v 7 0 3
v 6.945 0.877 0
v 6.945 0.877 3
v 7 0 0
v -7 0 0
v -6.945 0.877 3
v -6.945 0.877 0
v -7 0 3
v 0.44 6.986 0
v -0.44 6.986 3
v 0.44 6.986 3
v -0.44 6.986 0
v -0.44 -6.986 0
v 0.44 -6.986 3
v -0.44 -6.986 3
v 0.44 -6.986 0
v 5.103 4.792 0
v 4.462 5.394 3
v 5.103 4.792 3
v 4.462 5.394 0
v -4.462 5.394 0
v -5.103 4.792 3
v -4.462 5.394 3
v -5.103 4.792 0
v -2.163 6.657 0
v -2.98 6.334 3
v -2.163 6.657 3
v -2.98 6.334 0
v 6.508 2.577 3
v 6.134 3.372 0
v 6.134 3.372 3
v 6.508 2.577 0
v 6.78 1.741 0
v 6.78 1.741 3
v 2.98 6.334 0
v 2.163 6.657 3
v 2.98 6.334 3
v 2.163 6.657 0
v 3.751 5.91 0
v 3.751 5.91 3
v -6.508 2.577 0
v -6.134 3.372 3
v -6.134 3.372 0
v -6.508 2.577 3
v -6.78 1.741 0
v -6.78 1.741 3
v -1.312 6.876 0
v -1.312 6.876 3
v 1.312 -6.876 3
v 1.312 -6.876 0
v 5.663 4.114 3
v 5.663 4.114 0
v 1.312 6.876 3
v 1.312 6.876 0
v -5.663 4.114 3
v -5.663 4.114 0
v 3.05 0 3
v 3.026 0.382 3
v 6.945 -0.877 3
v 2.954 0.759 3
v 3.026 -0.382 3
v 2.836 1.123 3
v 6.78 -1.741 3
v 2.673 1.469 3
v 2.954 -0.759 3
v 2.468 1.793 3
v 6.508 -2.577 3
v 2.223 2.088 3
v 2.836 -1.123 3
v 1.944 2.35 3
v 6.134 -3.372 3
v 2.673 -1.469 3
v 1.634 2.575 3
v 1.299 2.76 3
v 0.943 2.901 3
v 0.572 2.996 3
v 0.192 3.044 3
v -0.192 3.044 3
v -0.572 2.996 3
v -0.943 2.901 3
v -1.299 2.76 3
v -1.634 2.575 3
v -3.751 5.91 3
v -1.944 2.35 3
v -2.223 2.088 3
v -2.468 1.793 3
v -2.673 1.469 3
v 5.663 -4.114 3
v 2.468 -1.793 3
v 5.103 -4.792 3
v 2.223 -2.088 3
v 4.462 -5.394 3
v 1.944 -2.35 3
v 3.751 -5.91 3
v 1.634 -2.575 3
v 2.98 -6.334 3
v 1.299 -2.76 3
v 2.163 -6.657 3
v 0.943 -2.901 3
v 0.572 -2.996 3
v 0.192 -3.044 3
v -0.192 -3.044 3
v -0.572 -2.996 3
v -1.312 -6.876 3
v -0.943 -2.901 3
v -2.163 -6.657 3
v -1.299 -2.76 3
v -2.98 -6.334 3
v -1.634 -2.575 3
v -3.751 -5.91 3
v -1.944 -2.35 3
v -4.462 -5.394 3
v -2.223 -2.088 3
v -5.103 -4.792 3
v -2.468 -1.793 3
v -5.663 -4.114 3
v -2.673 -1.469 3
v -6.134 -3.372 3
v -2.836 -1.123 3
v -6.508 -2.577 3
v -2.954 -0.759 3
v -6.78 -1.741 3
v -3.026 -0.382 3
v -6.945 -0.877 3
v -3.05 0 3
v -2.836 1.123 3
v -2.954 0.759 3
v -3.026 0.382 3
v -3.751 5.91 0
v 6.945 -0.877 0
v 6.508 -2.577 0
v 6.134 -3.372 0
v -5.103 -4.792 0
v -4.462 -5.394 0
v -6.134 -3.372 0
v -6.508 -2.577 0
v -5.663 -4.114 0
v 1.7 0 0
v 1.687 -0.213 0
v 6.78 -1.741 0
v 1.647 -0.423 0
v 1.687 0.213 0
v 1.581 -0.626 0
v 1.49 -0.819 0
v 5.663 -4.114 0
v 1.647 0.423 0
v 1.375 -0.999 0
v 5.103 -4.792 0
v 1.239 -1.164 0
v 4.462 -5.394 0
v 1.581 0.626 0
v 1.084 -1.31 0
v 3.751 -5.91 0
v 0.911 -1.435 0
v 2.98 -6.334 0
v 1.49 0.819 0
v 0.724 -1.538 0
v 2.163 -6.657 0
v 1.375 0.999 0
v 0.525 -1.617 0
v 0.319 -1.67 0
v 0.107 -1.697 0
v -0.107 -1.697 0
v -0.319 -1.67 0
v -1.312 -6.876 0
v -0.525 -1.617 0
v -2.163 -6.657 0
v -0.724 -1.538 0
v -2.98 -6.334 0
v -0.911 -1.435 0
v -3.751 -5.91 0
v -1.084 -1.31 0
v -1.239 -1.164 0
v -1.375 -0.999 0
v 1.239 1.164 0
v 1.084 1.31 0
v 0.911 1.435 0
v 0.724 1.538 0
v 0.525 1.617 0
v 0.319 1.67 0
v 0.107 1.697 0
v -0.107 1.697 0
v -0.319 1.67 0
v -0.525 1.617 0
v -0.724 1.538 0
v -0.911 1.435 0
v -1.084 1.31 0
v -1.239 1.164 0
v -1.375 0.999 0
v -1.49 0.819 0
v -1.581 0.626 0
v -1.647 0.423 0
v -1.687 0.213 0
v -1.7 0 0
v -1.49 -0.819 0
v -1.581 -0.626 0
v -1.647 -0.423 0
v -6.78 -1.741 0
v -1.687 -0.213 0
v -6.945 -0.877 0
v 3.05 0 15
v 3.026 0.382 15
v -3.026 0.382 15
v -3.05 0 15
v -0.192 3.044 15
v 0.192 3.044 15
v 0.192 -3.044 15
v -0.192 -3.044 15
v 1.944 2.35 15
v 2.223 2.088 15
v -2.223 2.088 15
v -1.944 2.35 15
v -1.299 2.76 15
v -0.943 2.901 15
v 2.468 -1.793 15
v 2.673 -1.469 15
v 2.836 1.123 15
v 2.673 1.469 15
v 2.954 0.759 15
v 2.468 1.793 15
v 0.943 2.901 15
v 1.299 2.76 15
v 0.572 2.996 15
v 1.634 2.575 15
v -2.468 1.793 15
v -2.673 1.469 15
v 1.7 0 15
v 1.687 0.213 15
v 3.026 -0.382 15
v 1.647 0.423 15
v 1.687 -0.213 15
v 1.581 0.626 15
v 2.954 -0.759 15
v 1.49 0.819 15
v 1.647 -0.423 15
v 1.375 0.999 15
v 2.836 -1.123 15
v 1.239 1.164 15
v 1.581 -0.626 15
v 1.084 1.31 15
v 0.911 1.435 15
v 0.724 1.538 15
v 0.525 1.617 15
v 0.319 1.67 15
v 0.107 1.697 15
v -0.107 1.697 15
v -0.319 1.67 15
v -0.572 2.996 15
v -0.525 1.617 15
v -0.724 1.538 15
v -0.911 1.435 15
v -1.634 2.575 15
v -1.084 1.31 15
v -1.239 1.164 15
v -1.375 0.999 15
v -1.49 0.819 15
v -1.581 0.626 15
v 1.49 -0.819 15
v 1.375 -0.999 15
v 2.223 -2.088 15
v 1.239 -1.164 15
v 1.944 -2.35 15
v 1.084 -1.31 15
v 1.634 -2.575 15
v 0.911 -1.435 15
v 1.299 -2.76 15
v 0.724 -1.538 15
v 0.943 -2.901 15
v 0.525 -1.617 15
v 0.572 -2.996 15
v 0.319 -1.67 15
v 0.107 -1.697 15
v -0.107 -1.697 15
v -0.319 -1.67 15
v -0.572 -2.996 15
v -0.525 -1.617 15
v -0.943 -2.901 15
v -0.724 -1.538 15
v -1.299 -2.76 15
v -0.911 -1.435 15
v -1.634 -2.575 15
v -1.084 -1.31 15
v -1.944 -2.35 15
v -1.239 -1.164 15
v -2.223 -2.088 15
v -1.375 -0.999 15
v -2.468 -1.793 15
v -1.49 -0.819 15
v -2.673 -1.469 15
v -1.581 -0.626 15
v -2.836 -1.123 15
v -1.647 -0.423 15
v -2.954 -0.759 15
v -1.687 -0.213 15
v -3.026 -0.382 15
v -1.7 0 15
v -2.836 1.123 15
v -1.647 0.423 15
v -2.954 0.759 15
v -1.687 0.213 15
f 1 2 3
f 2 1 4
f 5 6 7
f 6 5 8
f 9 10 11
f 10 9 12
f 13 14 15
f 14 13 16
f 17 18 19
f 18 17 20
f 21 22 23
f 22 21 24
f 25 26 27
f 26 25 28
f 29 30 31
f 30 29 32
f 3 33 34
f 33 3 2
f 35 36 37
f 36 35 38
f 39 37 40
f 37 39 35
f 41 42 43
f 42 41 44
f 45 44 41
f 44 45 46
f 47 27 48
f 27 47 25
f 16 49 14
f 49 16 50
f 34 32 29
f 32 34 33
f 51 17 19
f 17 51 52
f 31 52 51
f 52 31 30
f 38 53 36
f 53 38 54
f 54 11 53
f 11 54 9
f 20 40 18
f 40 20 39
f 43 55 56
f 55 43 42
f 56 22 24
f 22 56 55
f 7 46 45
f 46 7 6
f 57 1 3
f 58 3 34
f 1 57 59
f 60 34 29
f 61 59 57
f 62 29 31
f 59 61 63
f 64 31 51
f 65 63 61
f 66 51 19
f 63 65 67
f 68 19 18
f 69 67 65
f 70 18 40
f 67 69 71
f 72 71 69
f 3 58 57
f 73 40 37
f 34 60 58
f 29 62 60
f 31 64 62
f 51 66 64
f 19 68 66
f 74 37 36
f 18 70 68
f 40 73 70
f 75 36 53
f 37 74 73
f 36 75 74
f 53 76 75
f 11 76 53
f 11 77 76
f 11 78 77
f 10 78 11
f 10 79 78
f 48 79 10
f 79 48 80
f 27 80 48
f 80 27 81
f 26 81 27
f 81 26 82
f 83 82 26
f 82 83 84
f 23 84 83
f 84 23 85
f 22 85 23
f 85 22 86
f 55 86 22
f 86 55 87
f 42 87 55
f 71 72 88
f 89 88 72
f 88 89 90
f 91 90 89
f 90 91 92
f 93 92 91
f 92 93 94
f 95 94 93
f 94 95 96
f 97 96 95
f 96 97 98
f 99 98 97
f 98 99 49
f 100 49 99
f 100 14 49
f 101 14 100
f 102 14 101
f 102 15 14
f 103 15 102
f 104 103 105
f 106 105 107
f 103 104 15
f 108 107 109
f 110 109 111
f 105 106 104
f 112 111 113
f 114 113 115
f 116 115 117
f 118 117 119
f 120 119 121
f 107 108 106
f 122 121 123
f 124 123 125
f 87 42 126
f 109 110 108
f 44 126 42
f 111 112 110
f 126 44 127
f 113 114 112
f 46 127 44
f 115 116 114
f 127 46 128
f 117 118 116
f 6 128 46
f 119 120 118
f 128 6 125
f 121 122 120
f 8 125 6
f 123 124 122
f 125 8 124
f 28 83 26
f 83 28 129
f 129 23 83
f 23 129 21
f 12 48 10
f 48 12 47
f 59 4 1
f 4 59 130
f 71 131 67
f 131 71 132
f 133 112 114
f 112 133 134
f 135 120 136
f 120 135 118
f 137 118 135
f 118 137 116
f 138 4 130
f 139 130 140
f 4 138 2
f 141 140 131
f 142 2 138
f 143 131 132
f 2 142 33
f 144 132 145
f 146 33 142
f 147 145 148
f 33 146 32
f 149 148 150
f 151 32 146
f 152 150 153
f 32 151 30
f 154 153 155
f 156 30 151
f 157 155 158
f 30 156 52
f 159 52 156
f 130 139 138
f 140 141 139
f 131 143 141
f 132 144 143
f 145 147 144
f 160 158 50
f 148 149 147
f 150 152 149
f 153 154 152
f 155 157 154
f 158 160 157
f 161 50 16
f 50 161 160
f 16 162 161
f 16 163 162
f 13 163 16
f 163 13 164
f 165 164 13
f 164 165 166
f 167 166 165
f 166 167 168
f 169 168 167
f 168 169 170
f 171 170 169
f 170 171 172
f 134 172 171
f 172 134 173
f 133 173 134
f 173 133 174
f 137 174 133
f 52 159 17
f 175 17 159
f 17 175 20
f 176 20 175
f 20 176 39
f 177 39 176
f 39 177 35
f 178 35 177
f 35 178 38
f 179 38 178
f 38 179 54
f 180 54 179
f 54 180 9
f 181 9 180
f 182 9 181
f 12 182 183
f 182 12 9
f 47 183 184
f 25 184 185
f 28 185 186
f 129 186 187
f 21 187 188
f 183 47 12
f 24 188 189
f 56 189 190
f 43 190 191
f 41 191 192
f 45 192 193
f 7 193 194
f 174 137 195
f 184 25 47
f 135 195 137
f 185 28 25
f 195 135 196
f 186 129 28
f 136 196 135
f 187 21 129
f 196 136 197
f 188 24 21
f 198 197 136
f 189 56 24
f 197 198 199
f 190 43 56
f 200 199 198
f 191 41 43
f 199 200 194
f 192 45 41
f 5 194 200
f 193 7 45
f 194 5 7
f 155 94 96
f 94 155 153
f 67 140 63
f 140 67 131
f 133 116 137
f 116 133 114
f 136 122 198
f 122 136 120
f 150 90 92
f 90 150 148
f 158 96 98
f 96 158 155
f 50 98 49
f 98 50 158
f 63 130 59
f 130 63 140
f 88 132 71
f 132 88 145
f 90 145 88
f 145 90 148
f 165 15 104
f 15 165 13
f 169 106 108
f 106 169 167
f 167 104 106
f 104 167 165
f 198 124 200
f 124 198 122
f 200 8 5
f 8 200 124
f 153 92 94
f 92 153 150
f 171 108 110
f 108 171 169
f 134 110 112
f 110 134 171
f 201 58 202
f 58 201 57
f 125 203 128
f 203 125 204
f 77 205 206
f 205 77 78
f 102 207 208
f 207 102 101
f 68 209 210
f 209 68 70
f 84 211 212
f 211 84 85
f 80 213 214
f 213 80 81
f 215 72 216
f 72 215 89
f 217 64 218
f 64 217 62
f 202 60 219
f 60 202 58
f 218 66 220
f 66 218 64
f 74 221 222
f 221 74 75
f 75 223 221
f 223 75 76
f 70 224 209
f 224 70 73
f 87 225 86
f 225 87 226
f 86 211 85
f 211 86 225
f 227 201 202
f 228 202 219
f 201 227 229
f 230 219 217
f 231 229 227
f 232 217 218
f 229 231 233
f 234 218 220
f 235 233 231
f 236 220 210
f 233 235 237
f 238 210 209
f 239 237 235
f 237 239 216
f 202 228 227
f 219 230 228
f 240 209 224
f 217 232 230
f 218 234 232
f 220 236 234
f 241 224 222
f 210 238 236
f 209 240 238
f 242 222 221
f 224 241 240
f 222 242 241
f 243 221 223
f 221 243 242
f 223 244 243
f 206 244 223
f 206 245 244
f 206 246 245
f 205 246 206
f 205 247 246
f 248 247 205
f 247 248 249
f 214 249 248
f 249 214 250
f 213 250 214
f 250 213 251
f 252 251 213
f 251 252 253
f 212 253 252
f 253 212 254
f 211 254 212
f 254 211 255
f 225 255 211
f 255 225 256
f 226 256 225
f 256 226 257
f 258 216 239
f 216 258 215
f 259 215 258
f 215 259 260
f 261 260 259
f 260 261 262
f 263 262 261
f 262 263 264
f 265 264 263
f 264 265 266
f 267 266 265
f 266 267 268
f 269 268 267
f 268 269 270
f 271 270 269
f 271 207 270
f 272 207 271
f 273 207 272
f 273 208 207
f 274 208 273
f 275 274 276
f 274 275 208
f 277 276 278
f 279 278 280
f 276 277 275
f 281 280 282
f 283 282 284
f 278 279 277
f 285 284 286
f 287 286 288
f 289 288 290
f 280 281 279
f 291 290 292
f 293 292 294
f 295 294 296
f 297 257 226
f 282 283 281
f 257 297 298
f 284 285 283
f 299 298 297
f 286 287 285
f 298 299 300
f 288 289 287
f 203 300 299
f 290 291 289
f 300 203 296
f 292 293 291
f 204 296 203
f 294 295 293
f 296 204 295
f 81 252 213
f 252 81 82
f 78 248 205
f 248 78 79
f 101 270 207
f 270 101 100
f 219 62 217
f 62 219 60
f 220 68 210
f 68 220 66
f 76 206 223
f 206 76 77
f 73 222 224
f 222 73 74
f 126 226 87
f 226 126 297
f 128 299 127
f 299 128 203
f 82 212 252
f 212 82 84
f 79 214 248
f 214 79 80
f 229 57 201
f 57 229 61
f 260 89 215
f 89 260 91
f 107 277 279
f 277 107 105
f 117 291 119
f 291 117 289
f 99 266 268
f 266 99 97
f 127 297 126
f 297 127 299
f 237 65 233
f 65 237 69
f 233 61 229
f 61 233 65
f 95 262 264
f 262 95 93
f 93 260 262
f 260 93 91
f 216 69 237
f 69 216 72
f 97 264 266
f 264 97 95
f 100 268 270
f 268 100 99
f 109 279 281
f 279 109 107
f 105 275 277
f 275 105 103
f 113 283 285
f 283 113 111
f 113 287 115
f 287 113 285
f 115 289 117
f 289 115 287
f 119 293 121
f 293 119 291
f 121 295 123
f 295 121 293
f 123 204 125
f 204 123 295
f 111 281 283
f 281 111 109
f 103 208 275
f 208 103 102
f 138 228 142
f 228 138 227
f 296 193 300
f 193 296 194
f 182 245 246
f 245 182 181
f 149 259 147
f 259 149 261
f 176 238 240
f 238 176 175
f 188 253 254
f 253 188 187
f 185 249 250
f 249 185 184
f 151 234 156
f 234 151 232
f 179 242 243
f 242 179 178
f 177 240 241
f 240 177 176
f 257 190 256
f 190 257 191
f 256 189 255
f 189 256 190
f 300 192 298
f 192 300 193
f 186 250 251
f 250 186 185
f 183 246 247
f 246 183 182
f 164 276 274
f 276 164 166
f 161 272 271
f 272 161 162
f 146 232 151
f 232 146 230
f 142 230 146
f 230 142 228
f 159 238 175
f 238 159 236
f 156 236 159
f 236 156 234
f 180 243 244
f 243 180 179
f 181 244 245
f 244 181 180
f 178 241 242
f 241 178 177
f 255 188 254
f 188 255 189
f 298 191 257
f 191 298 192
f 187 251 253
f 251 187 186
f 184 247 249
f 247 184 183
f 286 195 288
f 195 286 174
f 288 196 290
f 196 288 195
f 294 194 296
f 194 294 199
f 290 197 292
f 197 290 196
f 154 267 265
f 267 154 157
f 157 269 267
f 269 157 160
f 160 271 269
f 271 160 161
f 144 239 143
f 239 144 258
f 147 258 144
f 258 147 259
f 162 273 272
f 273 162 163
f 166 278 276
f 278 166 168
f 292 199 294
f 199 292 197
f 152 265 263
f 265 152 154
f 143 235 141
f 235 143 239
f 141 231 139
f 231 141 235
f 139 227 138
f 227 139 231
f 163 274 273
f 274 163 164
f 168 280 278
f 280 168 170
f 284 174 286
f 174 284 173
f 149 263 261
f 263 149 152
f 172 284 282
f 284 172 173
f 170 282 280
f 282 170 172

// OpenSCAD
$fn = 50;


difference() {
	union() {
		translate(v = [0, 0, 0]) {
			rotate(a = [0, 0, 0]) {
				cylinder(h = 3, r = 7.0000000000);
			}
		}
		translate(v = [0, 0, 0]) {
			rotate(a = [0, 0, 0]) {
				cylinder(h = 15, r = 3.0500000000);
			}
		}
	}
	union() {
		translate(v = [0, 0, -125.0000000000]) {
			rotate(a = [0, 0, 0]) {
				cylinder(h = 250, r = 1.7000000000);
			}
		}
	}
}
